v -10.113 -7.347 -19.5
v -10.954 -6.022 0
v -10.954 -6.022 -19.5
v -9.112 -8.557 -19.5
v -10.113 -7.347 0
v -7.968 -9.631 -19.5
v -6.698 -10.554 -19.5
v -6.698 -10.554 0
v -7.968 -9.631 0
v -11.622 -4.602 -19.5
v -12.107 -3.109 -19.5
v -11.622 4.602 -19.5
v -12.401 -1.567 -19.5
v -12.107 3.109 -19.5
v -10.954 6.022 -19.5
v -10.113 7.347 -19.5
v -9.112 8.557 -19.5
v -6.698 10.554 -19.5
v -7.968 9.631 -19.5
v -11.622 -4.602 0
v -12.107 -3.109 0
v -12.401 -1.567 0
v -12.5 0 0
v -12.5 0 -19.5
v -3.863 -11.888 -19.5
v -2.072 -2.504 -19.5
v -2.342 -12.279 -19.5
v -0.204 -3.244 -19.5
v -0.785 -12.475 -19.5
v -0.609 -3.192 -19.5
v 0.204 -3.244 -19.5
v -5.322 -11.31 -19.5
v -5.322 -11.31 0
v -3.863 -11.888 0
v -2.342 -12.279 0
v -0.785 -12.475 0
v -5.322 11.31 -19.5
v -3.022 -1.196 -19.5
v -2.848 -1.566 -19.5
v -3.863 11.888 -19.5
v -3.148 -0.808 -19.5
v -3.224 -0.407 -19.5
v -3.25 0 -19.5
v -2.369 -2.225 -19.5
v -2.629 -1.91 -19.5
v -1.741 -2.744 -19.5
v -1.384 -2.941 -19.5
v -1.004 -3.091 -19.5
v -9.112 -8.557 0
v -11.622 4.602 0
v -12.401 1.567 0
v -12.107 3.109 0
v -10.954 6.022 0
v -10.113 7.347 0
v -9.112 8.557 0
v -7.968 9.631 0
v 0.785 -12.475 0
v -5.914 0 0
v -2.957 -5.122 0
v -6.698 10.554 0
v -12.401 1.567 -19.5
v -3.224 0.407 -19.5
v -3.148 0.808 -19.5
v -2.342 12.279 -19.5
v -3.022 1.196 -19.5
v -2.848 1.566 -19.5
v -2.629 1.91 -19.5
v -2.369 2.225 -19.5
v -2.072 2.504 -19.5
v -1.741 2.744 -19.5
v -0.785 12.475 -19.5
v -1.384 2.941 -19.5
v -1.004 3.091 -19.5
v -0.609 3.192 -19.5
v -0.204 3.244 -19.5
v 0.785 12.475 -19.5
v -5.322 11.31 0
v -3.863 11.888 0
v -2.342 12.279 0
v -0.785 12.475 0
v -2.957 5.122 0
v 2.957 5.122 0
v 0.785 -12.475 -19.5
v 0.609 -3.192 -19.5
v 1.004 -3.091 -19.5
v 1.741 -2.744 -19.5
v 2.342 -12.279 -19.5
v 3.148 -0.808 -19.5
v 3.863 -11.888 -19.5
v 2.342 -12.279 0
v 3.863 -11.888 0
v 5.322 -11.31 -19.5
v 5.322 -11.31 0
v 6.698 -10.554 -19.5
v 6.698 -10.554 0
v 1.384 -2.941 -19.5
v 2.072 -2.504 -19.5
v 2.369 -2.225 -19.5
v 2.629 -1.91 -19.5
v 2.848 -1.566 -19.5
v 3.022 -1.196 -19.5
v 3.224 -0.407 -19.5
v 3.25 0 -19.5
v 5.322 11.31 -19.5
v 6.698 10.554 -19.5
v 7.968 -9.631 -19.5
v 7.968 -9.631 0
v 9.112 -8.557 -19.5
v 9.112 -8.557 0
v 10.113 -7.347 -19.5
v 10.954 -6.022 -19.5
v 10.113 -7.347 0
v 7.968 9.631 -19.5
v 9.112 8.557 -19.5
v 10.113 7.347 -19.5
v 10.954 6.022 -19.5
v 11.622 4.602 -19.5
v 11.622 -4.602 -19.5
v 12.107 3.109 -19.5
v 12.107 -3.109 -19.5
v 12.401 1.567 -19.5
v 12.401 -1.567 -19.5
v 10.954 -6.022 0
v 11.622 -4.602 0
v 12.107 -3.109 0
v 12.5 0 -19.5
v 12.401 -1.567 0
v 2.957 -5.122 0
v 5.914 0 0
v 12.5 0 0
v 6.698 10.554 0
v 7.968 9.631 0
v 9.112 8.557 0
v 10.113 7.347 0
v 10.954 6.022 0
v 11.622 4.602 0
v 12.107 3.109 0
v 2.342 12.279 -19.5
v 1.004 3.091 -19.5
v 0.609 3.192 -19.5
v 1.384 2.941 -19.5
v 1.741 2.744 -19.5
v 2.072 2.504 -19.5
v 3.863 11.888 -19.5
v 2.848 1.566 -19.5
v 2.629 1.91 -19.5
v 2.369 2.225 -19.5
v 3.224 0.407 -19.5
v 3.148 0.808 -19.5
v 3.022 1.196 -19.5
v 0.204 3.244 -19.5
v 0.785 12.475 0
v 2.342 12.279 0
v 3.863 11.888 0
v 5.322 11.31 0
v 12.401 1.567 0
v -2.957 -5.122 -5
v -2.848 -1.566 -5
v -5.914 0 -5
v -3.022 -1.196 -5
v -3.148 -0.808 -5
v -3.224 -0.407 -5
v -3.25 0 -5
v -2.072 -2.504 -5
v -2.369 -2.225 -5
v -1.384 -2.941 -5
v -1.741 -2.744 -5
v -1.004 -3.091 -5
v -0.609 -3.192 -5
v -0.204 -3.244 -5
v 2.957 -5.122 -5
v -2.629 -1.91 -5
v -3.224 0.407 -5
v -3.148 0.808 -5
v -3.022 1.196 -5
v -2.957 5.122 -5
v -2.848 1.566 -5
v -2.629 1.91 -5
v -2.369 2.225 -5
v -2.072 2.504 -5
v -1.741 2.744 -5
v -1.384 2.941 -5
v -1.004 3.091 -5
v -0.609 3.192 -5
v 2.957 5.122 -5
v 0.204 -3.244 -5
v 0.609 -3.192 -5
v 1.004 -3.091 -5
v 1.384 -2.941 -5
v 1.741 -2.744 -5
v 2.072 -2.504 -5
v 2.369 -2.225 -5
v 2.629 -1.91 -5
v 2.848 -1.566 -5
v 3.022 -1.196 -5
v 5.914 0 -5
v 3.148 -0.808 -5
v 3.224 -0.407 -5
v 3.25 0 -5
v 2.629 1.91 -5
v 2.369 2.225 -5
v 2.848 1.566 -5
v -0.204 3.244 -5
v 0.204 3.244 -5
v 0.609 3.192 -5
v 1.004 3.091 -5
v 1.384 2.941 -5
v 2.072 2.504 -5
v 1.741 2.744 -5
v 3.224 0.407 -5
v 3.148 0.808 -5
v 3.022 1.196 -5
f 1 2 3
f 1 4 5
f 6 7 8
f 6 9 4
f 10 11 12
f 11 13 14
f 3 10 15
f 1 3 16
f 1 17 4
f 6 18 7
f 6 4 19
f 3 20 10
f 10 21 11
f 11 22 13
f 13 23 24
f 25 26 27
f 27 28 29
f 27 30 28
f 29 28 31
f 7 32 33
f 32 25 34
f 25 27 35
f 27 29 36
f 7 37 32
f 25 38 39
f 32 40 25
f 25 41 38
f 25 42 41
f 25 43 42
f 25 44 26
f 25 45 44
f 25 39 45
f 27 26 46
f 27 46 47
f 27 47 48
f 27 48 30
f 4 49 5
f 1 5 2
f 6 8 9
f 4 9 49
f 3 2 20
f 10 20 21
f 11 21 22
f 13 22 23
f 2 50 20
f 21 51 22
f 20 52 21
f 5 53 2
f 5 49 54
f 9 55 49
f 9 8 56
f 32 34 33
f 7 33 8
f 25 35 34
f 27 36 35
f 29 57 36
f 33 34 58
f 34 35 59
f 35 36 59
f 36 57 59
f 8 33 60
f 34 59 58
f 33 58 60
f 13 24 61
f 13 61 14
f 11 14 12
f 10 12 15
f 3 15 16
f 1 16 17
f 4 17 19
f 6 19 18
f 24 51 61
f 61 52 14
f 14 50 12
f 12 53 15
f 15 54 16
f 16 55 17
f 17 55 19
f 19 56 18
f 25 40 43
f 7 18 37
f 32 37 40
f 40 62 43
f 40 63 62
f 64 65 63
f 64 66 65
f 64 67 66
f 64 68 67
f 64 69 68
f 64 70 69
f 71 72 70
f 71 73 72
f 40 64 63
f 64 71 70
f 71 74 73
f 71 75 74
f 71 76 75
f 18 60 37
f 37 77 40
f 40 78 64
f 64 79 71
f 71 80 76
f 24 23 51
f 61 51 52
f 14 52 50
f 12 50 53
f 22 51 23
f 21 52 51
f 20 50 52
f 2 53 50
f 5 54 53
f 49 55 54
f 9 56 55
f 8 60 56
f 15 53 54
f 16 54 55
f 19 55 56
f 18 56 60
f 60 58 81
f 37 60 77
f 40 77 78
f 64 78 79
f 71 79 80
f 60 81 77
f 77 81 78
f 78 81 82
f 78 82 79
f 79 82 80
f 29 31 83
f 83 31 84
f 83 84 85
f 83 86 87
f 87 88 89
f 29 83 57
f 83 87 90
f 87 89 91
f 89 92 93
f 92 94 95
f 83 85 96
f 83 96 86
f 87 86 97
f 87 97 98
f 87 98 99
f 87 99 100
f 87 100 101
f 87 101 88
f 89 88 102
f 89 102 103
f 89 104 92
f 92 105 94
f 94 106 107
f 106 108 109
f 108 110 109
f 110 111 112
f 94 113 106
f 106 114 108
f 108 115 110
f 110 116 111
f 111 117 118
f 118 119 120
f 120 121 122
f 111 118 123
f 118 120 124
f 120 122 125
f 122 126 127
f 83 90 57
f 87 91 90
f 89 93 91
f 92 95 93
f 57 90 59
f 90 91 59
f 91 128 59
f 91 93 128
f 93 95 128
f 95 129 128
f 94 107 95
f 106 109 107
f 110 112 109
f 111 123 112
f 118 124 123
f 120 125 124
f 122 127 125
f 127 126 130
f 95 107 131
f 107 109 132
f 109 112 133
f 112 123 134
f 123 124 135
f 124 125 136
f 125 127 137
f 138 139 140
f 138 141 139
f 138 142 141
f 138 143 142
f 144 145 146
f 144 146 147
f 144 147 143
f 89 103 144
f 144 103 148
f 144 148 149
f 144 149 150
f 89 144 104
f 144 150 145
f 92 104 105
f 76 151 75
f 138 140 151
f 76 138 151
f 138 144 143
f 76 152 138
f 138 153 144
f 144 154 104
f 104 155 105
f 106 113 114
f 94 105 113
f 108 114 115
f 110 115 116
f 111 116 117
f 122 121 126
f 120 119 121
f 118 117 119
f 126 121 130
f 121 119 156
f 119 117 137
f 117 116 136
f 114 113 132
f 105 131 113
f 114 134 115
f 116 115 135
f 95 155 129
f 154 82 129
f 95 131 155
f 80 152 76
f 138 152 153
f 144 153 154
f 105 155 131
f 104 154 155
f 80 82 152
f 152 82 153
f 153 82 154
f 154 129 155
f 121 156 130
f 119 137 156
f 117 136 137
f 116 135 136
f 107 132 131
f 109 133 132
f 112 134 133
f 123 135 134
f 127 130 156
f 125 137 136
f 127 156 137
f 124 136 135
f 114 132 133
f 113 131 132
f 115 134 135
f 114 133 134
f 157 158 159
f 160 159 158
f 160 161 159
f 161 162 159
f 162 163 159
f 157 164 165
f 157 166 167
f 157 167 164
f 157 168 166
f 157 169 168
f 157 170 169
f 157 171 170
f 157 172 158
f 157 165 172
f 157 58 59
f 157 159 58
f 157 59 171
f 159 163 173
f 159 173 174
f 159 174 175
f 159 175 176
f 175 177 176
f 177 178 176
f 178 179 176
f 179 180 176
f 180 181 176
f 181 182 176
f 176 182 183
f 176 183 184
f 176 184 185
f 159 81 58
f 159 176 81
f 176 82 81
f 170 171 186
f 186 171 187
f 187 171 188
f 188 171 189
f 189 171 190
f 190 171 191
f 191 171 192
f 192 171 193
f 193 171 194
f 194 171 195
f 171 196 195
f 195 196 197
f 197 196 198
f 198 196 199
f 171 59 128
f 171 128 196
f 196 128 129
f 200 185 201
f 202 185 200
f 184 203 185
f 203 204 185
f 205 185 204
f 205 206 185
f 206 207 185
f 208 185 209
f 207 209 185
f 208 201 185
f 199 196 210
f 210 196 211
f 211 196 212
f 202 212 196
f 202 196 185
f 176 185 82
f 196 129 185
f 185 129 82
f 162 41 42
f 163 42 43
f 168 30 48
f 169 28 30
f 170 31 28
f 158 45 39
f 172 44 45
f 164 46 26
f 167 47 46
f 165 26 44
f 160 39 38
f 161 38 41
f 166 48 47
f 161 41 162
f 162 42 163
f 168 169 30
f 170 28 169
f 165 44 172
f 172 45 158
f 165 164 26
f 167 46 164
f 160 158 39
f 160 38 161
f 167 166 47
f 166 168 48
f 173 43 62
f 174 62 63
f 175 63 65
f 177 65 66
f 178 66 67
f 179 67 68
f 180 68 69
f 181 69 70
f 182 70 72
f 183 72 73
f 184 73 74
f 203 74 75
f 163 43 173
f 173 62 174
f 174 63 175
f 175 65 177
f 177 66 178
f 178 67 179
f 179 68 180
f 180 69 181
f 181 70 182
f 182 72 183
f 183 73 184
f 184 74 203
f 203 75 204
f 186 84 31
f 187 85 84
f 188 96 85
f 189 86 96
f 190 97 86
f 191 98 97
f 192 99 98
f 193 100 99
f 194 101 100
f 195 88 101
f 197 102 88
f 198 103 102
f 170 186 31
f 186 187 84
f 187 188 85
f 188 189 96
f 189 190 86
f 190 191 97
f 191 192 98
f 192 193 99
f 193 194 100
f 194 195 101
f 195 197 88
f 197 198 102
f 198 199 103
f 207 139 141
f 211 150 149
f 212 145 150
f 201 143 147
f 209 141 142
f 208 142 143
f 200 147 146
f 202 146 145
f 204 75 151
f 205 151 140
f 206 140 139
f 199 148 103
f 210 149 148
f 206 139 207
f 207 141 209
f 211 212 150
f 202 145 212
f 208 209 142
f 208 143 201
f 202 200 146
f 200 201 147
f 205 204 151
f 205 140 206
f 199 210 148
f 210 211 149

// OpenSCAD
$fn = 50;


difference() {
	union() {
		translate(v = [0, 0, -19.5000000000]) {
			cylinder(h = 19.5000000000, r = 12.5000000000);
		}
		#translate(v = [0, 0, -21.0000000000]) {
			cylinder(h = 21, r = 2.8750000000);
		}
	}
	union() {
		translate(v = [0, 0, 0]) {
			rotate(a = [0, 0, 0]) {
				difference() {
					union() {
						translate(v = [0, 0, -5]) {
							linear_extrude(height = 5) {
								polygon(points = [[5.9142500000, 0.0000000000], [2.9571250000, 5.1218907443], [-2.9571250000, 5.1218907443], [-5.9142500000, 0.0000000000], [-2.9571250000, -5.1218907443], [2.9571250000, -5.1218907443]]);
							}
						}
					}
					union();
				}
			}
		}
		#translate(v = [0, 0, -100.0000000000]) {
			cylinder(h = 200, r = 3.2500000000);
		}
	}
}
